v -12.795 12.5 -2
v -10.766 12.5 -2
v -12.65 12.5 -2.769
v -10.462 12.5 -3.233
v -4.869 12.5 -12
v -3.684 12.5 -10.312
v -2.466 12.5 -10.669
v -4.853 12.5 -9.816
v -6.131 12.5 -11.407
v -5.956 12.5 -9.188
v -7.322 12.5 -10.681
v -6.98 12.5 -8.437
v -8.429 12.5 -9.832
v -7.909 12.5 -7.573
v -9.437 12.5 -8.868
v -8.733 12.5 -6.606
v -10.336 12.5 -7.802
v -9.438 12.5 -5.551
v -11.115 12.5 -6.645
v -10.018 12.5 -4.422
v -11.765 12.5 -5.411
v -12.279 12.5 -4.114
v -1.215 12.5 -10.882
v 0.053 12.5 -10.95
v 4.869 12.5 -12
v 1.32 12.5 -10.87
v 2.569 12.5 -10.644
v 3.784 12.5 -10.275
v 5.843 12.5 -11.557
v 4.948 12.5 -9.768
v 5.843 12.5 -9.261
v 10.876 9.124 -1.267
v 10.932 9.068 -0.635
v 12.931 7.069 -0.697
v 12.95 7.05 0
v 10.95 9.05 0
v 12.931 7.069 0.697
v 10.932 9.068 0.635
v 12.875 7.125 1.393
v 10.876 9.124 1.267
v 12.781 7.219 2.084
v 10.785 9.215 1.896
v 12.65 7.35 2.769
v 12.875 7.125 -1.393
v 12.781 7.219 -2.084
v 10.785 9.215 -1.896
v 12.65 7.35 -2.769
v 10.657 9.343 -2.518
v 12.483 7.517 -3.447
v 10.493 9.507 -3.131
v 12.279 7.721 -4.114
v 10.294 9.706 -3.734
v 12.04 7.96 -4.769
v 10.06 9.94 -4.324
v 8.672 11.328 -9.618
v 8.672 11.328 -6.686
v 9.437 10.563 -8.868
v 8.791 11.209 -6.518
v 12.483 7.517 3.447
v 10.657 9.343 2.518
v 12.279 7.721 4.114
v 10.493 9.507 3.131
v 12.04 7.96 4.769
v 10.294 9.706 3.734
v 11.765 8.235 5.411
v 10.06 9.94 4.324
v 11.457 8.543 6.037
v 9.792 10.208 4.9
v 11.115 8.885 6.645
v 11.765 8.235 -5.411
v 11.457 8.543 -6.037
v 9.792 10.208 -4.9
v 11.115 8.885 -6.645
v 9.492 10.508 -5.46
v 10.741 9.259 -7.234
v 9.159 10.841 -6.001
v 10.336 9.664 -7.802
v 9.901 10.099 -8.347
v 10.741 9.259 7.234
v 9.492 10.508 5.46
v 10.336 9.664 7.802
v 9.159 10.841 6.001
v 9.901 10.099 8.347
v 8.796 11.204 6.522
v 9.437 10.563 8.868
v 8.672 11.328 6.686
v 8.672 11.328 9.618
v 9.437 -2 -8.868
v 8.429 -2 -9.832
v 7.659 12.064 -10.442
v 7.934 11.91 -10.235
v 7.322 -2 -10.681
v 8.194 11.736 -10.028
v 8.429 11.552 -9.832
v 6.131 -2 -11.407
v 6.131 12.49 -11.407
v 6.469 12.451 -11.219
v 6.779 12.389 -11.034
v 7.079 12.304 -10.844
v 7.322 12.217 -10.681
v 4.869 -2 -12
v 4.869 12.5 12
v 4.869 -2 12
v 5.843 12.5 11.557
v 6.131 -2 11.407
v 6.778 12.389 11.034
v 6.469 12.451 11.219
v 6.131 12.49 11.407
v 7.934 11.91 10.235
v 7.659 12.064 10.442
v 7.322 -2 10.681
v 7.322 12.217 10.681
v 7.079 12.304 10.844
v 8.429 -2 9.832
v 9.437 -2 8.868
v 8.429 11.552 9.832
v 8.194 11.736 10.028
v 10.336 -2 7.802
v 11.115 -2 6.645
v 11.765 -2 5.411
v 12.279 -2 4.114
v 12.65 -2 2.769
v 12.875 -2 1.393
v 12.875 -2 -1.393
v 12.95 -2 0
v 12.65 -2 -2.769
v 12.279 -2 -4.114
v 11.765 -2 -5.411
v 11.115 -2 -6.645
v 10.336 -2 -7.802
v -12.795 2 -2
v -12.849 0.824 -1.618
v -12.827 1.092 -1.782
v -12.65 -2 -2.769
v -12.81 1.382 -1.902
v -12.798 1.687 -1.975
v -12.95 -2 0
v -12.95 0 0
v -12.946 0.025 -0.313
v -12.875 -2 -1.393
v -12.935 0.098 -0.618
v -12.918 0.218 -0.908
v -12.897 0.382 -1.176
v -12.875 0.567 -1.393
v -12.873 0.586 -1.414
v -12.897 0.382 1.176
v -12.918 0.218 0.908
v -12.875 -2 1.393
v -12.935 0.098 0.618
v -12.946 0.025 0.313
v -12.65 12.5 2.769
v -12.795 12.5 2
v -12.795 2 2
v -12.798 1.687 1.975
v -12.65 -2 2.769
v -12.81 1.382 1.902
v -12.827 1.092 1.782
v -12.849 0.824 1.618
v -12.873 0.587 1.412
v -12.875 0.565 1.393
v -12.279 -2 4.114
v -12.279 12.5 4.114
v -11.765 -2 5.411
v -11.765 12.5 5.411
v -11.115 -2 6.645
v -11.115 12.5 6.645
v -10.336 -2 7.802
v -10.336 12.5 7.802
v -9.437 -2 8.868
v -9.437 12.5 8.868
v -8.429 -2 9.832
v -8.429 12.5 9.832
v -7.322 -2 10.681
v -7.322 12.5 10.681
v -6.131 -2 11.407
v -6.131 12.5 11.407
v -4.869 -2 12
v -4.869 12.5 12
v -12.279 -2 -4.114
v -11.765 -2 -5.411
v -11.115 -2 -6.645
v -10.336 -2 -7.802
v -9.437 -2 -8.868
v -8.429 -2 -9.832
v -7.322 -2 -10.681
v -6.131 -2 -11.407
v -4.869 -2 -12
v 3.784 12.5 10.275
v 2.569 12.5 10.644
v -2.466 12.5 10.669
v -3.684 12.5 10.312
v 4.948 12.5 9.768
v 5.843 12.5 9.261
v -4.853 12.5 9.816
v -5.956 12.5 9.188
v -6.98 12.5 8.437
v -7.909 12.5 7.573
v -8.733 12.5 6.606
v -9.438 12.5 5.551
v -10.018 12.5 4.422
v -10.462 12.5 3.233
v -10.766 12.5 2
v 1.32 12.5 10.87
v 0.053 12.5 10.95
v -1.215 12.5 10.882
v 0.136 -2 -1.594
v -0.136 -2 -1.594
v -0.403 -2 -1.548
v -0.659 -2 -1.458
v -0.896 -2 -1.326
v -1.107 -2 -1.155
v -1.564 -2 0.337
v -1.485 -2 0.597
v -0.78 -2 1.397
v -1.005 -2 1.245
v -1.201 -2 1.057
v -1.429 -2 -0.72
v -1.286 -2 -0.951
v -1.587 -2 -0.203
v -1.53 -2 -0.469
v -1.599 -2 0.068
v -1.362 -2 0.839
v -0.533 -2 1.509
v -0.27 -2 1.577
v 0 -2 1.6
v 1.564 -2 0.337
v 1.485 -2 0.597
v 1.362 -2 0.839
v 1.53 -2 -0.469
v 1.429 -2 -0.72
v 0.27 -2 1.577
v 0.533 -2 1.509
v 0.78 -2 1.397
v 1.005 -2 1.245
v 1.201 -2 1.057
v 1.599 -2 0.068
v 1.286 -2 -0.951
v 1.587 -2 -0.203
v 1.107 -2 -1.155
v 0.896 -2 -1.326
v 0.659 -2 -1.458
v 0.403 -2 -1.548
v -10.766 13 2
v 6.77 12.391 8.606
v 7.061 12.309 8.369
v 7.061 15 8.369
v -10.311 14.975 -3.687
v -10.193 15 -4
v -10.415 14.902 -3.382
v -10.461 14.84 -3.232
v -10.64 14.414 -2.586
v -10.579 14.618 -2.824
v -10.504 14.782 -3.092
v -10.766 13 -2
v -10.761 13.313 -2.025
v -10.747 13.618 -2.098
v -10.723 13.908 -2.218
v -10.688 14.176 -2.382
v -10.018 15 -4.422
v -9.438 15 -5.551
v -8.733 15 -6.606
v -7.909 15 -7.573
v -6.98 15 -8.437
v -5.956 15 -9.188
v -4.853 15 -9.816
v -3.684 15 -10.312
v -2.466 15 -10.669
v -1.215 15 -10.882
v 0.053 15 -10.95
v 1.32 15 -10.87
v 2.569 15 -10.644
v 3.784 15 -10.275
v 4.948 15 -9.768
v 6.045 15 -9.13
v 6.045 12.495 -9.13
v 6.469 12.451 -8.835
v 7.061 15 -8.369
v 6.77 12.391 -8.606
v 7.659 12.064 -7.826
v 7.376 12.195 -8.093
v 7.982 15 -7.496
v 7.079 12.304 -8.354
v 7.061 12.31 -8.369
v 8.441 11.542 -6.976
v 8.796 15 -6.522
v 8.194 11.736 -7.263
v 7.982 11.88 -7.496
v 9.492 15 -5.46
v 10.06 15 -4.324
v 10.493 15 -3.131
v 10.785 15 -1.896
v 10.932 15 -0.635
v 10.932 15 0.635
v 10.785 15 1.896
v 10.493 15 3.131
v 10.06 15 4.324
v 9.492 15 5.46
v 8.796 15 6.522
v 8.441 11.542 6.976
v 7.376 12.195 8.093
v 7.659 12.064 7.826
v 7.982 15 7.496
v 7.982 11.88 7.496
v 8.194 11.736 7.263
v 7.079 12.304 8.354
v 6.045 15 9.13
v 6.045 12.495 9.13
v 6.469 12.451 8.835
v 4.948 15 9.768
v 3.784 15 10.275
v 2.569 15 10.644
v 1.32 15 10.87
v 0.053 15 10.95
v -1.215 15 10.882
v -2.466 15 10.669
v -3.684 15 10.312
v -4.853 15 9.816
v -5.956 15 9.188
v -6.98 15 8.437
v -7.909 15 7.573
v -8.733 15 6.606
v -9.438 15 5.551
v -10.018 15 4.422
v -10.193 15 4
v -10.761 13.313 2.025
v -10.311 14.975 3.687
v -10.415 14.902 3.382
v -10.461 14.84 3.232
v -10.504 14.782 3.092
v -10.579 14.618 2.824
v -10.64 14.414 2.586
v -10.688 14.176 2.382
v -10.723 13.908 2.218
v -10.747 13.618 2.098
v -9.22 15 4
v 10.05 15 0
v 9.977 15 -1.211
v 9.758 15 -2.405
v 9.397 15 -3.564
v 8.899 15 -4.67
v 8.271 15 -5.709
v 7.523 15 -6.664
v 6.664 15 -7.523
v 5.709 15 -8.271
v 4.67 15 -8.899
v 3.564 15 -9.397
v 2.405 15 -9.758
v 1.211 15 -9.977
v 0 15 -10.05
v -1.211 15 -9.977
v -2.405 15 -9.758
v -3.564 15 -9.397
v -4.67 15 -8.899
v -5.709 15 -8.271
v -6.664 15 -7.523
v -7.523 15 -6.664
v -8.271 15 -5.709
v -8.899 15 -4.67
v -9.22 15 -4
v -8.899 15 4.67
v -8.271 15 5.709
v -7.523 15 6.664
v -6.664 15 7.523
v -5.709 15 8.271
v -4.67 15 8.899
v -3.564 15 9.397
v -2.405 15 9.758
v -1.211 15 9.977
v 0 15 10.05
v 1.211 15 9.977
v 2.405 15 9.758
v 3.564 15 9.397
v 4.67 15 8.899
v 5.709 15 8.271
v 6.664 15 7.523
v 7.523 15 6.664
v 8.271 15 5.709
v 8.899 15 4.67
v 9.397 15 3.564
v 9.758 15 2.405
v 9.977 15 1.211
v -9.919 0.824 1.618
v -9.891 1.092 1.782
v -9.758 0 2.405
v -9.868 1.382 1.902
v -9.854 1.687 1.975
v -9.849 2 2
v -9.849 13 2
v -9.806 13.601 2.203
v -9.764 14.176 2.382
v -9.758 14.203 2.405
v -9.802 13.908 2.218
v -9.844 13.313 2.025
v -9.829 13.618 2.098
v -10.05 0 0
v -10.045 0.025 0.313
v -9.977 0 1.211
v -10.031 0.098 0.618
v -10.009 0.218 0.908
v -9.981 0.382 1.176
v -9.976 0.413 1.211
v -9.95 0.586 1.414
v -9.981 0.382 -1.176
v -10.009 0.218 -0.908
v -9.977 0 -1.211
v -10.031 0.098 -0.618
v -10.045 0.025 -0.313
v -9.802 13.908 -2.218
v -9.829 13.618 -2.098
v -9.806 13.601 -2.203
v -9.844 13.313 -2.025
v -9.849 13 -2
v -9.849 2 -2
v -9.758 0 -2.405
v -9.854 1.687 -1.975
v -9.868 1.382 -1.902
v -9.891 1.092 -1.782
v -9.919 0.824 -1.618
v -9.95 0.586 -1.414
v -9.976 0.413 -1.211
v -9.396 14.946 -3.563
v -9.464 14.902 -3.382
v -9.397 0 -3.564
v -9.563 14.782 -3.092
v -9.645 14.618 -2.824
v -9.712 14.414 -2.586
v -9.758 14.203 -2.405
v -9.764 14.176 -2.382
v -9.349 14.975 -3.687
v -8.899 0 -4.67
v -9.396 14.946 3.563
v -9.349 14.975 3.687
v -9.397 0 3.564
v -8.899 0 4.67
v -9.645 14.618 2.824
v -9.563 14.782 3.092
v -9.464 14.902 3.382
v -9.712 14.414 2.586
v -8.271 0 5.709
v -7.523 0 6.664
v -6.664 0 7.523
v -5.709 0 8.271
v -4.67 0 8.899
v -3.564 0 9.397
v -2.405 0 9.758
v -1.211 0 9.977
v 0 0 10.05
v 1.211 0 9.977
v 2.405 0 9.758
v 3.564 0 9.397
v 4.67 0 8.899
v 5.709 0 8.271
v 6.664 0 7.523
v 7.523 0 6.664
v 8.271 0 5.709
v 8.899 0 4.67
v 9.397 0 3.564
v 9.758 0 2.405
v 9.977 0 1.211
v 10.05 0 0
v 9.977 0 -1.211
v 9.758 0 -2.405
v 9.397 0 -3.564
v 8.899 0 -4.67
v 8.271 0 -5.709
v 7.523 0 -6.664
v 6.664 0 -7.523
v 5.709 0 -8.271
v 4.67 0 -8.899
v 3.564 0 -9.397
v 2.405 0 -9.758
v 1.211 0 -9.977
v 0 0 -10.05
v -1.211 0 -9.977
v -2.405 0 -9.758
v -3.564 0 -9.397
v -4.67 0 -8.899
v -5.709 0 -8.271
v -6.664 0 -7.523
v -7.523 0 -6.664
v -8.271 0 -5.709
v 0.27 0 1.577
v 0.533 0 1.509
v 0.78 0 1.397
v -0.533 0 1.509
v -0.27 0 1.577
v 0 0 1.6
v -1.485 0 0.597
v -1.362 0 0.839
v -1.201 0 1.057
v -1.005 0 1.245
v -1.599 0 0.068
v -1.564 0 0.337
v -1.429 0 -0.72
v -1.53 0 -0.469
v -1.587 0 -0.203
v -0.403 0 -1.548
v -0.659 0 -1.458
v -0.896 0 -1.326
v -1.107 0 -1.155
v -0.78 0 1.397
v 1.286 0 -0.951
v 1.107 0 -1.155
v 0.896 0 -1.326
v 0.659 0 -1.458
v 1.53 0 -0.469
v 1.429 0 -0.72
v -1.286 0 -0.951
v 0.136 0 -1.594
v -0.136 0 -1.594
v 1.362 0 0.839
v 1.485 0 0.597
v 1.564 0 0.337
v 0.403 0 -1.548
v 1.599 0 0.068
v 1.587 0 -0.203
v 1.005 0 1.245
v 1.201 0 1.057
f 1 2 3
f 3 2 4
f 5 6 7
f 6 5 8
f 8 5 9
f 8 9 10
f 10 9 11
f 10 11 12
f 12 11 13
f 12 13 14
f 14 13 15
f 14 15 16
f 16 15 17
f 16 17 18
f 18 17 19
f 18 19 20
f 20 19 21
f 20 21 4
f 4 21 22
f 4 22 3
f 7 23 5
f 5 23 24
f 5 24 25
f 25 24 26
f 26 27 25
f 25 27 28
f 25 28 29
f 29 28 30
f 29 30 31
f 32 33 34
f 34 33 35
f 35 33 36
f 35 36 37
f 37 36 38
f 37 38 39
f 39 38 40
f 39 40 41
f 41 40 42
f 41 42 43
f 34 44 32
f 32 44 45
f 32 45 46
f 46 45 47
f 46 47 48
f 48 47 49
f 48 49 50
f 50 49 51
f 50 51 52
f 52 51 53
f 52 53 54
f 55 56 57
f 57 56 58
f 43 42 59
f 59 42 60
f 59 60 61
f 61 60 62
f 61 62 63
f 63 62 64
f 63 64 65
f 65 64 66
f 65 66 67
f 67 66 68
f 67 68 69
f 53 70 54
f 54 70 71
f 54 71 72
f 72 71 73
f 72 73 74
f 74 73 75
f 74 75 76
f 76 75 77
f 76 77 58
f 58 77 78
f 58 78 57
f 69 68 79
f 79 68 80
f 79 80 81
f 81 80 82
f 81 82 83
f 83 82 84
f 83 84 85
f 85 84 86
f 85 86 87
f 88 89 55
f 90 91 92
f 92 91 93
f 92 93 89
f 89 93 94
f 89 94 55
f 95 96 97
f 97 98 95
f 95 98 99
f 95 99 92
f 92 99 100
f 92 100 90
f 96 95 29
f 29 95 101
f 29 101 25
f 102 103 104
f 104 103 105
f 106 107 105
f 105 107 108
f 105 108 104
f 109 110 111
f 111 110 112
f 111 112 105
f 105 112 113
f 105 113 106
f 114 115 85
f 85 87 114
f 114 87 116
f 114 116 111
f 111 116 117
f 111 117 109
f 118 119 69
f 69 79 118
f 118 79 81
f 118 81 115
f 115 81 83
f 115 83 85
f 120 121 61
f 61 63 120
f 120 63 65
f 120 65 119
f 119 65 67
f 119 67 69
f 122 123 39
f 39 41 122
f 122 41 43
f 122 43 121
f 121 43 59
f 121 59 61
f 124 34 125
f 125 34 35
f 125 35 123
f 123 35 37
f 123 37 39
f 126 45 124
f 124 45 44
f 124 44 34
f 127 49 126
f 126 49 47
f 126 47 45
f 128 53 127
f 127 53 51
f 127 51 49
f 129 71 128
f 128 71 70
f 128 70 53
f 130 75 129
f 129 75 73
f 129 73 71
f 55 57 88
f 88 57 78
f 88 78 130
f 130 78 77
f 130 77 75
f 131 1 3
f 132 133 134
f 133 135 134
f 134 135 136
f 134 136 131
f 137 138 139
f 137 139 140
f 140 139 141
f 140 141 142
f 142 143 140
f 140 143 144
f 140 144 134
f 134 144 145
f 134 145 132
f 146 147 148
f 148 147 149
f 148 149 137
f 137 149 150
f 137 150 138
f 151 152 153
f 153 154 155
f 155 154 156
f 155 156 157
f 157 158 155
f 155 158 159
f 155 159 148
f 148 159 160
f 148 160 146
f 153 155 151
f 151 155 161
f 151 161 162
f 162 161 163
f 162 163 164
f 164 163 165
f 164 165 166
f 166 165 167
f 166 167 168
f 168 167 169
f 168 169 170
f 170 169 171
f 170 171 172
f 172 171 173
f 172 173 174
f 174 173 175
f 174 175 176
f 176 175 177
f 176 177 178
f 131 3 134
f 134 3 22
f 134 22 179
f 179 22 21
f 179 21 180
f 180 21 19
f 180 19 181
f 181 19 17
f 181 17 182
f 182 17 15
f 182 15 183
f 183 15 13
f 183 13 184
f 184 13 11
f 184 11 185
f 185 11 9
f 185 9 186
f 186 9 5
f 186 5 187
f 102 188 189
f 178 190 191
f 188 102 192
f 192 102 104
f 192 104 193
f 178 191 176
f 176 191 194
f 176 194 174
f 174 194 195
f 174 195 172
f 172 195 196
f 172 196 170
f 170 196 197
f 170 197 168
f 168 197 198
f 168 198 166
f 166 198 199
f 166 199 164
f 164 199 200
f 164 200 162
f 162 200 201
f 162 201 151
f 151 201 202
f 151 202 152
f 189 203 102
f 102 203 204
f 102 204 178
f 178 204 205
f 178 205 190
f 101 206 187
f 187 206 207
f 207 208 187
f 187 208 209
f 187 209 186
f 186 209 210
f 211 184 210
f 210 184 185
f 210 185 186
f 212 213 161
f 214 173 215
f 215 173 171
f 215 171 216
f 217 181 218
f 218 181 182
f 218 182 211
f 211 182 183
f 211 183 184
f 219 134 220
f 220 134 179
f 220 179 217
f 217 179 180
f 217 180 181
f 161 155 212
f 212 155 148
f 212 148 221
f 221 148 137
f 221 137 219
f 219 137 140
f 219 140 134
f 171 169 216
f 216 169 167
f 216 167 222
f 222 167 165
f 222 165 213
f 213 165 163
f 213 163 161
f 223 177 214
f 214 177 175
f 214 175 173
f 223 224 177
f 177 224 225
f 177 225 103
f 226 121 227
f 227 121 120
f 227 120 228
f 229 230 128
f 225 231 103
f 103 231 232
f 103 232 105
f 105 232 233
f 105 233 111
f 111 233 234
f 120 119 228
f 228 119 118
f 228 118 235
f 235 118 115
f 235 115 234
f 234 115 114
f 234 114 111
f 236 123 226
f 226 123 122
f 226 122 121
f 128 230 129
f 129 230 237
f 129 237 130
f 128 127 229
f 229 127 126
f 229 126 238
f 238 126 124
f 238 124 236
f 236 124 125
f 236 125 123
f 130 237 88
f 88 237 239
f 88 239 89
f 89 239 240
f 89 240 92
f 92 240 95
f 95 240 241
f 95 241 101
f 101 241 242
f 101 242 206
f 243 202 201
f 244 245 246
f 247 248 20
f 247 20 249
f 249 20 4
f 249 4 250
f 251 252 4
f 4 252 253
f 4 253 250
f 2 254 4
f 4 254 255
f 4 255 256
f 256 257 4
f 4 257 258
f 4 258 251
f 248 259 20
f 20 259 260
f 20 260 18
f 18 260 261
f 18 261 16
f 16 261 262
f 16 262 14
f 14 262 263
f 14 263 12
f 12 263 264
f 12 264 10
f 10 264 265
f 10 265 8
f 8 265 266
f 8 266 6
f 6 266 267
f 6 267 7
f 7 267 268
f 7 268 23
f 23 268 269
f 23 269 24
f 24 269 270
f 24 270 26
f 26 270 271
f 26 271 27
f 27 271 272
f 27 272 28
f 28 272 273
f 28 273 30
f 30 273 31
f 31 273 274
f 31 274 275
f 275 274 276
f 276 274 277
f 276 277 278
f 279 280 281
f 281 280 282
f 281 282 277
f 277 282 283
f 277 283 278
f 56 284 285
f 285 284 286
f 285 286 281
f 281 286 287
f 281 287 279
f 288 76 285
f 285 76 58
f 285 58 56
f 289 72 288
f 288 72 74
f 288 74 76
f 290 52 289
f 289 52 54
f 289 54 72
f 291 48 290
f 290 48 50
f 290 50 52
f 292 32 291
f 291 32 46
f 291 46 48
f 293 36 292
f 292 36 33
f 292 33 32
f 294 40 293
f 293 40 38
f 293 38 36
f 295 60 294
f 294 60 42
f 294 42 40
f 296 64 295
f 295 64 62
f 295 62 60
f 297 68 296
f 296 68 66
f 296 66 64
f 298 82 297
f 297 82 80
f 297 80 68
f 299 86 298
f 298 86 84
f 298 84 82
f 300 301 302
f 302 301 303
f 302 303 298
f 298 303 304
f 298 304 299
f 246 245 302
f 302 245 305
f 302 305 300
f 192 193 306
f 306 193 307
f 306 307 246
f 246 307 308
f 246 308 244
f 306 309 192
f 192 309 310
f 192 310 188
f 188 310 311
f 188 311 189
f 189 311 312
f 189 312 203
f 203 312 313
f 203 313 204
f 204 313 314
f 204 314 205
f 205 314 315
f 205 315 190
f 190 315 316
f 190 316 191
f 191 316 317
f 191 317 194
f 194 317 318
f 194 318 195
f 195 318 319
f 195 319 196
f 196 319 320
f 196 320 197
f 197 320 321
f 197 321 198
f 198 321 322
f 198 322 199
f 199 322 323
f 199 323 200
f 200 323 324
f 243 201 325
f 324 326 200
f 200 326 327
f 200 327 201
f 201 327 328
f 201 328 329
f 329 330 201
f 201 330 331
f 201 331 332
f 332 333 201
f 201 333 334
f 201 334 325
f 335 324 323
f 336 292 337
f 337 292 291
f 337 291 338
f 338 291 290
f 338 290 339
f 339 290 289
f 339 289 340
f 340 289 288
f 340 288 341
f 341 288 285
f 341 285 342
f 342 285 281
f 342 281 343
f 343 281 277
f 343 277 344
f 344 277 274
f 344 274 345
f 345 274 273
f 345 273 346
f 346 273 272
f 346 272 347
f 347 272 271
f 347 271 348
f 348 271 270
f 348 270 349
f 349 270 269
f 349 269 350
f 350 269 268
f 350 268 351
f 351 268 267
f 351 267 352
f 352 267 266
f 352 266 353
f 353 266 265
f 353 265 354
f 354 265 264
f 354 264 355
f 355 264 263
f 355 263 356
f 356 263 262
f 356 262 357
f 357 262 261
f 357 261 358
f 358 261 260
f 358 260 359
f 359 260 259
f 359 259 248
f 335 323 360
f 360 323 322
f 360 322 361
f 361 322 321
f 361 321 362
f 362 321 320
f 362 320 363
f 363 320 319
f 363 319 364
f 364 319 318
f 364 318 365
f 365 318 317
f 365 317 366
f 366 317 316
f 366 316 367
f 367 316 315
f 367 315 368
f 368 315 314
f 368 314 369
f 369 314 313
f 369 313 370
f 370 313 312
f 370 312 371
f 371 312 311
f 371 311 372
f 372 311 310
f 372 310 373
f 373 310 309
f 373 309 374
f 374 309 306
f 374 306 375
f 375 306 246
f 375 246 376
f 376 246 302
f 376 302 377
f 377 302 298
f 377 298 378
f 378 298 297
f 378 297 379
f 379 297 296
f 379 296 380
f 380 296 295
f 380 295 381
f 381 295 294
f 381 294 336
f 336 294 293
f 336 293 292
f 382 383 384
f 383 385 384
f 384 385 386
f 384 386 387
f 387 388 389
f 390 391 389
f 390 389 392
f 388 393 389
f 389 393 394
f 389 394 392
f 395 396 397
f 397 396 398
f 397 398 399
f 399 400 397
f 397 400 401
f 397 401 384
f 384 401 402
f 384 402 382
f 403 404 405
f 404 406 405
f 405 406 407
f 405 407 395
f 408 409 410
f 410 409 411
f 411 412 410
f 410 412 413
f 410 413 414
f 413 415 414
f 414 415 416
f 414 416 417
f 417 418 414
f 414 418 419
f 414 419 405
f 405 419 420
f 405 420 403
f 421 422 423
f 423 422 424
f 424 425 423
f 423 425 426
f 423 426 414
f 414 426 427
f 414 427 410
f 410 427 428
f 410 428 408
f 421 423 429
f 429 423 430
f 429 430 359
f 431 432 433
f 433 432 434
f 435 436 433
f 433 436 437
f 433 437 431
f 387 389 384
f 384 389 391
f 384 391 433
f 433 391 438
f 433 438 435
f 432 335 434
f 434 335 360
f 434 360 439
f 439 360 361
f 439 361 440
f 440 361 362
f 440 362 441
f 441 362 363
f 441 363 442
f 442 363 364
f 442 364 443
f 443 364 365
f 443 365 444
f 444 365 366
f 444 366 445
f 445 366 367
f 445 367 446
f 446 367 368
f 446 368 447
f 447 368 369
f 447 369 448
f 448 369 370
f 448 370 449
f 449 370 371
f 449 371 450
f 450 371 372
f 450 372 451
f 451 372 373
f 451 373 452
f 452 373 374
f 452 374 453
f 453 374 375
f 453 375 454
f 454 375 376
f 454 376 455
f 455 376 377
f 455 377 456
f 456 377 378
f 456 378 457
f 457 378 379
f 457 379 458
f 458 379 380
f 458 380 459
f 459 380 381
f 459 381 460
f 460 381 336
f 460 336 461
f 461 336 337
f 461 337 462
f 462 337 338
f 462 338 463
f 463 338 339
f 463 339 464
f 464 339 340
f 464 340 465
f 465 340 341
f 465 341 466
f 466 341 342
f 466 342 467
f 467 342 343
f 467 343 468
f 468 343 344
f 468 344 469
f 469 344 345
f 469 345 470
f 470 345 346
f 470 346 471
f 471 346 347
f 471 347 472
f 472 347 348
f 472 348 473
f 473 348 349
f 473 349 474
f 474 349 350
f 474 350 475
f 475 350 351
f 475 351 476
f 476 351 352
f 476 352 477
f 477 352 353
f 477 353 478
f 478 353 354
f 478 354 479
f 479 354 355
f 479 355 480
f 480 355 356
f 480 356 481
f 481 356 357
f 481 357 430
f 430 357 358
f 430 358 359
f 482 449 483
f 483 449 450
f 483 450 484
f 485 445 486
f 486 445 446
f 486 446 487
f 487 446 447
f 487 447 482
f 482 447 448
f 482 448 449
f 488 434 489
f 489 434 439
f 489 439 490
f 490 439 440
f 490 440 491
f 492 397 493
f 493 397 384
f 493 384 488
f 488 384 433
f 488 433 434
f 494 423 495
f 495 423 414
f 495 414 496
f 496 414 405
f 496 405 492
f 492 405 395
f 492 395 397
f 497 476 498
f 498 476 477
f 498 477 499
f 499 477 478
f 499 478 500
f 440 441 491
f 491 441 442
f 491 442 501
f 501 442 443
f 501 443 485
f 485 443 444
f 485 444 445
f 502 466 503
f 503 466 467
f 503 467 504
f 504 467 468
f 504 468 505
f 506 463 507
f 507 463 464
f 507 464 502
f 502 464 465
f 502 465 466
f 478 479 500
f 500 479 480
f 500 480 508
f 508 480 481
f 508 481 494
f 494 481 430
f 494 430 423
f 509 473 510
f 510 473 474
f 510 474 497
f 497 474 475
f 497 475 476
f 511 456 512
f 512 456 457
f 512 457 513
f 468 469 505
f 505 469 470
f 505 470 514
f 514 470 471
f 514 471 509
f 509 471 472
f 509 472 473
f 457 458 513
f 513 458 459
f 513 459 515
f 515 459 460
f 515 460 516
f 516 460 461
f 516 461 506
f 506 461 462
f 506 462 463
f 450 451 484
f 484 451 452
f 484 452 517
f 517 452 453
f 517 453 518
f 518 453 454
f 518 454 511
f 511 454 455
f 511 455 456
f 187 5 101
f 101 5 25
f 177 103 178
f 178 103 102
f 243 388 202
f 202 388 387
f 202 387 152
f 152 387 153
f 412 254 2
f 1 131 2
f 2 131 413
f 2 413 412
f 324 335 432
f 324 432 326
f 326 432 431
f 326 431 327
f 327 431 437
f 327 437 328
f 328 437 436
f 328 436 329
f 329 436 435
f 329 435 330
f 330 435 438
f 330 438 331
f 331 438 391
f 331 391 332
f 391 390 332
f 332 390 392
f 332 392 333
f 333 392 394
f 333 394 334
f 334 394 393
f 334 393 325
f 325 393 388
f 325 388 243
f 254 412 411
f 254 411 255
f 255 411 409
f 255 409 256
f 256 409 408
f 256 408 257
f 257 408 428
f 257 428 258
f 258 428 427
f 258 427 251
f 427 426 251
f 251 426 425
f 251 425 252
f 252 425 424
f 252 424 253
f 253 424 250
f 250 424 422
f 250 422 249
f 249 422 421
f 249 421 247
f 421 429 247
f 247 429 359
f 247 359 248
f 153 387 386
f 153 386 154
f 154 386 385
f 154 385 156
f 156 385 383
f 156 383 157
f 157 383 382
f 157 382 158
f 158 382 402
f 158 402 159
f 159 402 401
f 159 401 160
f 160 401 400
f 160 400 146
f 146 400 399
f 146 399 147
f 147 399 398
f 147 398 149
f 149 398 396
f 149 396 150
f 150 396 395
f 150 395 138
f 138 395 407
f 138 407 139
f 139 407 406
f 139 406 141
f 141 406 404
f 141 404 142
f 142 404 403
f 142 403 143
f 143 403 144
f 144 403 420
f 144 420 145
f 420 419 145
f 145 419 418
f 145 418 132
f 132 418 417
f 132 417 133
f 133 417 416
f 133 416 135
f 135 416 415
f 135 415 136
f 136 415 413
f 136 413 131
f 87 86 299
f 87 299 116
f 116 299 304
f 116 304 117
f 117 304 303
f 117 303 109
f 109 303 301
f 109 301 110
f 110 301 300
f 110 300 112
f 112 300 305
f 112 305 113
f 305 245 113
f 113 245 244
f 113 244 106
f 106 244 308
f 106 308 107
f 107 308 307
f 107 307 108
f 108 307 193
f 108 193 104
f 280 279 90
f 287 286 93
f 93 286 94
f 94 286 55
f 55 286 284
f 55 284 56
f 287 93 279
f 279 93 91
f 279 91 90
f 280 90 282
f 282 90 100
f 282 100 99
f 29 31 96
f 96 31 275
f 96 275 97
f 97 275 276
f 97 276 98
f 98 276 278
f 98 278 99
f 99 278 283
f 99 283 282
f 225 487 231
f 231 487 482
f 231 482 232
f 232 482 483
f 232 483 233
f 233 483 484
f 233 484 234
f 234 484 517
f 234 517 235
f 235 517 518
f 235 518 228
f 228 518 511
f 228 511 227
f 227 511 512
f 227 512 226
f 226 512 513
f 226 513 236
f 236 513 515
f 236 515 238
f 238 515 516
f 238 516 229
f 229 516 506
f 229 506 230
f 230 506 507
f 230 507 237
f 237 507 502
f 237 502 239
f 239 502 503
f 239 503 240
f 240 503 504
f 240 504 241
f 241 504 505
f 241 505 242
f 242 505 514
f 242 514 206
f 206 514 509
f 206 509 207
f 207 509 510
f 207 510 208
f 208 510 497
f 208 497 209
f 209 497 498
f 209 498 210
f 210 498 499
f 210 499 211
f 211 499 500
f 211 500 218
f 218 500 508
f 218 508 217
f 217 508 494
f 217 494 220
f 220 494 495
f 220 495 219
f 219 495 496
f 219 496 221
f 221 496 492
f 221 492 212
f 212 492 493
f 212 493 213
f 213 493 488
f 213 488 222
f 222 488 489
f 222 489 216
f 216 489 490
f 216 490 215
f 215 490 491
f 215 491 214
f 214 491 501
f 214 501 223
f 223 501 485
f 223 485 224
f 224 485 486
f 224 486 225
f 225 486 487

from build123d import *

# Parameters (mm, degrees)
SKETCH1_R               = 10.95
SKETCH1_R_2             = 10.05
BOSS_EXTRUDE1_DEPTH     = 2
BOSS_EXTRUDE2_START     = 15
SKETCH1_3_R             = 10.95
SKETCH1_3_R_2           = 10.05
BOSS_EXTRUDE2_DEPTH     = 15
BOSS_EXTRUDE3_START     = -2.5
SKETCH2_R               = 12.95
SKETCH2_R_2             = 10.95
BOSS_EXTRUDE3_DEPTH     = 14.5
CUT_EXTRUDE1_DEPTH      = 24.672874773
CUT_EXTRUDE1_DEPTH_BACK = 24.672874773
SKETCH3_W               = 100
SKETCH3_H               = 24
CUT_EXTRUDE3_DEPTH      = 24.166840527
CUT_EXTRUDE3_DEPTH_BACK = 24.166840527
BOSS_EXTRUDE4_START     = 15
SKETCH1_4_R             = 10.95
SKETCH1_4_R_2           = 10.05
BOSS_EXTRUDE4_DEPTH     = 15
SKETCH5_W               = 18
SKETCH5_H               = 4
CUT_EXTRUDE4_DEPTH      = 24.166840527
FILLET1_R               = 2
FILLET2_R               = 4
CUT_EXTRUDE5_DEPTH      = 24.166840699
CUT_EXTRUDE5_DEPTH_BACK = 24.166840699
SKETCH6_R               = 1.6


with BuildPart() as part:
    # Sketch1 → Boss-Extrude1 (new body)
    # profile 1 of 2: a face of its own
    with BuildSketch(Plane(origin=(0, 0, 0), x_dir=(1, 0, 0), z_dir=(0, 1, 0))):
        with Locations(Location((0, 0, 0), (0, 0, 270))):
            Circle(SKETCH1_R)
        Circle(SKETCH1_R_2, mode=Mode.SUBTRACT)
    # profile 2 of 2: a face of its own
    with BuildSketch(Plane(origin=(0, 0, 0), x_dir=(1, 0, 0), z_dir=(0, 1, 0))):
        Circle(SKETCH1_R_2)
    extrude(amount=-BOSS_EXTRUDE1_DEPTH)

    # Sketch1<3> → Boss-Extrude2 (add)
    with BuildSketch(Plane(origin=(0, 0, 0), x_dir=(1, 0, 0), z_dir=(0, 1, 0)).offset(BOSS_EXTRUDE2_START)):
        with Locations(Location((0, 0, 0), (0, 0, 270))):
            Circle(SKETCH1_3_R)
        with Locations(Location((0, 0, 0), (0, 0, 270))):
            Circle(SKETCH1_3_R_2, mode=Mode.SUBTRACT)
    extrude(amount=-BOSS_EXTRUDE2_DEPTH)

    # Sketch2 → Boss-Extrude3 (add)
    with BuildSketch(Plane(origin=(0, 15, 0), x_dir=(1, 0, 0), z_dir=(0, 1, 0)).offset(BOSS_EXTRUDE3_START)):
        with Locations(Location((0, 0, 0), (0, 0, 270))):
            Circle(SKETCH2_R)
        with Locations(Location((0, 0, 0), (0, 0, 270))):
            Circle(SKETCH2_R_2, mode=Mode.SUBTRACT)
    extrude(amount=-BOSS_EXTRUDE3_DEPTH)

    # Sketch3 → Cut-Extrude1 (cut, two sides: drawn at the far end of the back side and taken through both)
    with BuildSketch(Plane(origin=(0, 0, 0), x_dir=(1, 0, 0), z_dir=(0, 1, 0)).offset(-CUT_EXTRUDE1_DEPTH_BACK)):
        with Locations((0, -24)):
            Rectangle(SKETCH3_W, SKETCH3_H)
        with Locations((0, 24)):
            Rectangle(SKETCH3_W, SKETCH3_H)
    extrude(amount=CUT_EXTRUDE1_DEPTH + CUT_EXTRUDE1_DEPTH_BACK, mode=Mode.SUBTRACT)

    # Sketch4 → Cut-Extrude3 (cut, two sides: drawn at the far end of the back side and taken through both)
    with BuildSketch(Plane.XY.offset(-CUT_EXTRUDE3_DEPTH_BACK)):
        Polygon((13, 15), (5, 15), (13, 7), align=None)
    extrude(amount=CUT_EXTRUDE3_DEPTH + CUT_EXTRUDE3_DEPTH_BACK, mode=Mode.SUBTRACT)

    # Sketch1<4> → Boss-Extrude4 (add)
    with BuildSketch(Plane(origin=(0, 0, 0), x_dir=(1, 0, 0), z_dir=(0, 1, 0)).offset(BOSS_EXTRUDE4_START)):
        with Locations(Location((0, 0, 0), (0, 0, 270))):
            Circle(SKETCH1_4_R)
        with Locations(Location((0, 0, 0), (0, 0, 270))):
            Circle(SKETCH1_4_R_2, mode=Mode.SUBTRACT)
    extrude(amount=-BOSS_EXTRUDE4_DEPTH)

    # Sketch5 → Cut-Extrude4 (cut, through all)
    with BuildSketch(Plane(origin=(0, 0, 0), x_dir=(1, 0, 0), z_dir=(0, 1, 0))):
        with Locations((-11, 0)):
            Rectangle(SKETCH5_W, SKETCH5_H)
    extrude(amount=CUT_EXTRUDE4_DEPTH, mode=Mode.SUBTRACT)

    # Fillet1
    fillet1_edges = [part.edges().sort_by_distance(p)[0] for p in [
        (-10.307393529, 15, 2),
        (-10.307393529, 15, -2),
        (-11.321806249, 0, -2),
        (-11.321806249, 0, 2),
    ]]
    fillet(fillet1_edges, radius=FILLET1_R - 0.0001)  # a hair under: the kernel refuses the full size

    # Fillet2
    fillet2_edges = [part.edges().sort_by_distance(p)[0] for p in [
        (7.5, 12.5, 9.26767915),
        (7.5, 12.5, -9.26767915),
    ]]
    fillet(fillet2_edges, radius=FILLET2_R)

    # Sketch6 → Cut-Extrude5 (cut, two sides: drawn at the far end of the back side and taken through both)
    with BuildSketch(Plane(origin=(0, 0, 0), x_dir=(1, 0, 0), z_dir=(0, 1, 0)).offset(-CUT_EXTRUDE5_DEPTH_BACK)):
        with Locations(Location((0, 0, 0), (0, 0, 270))):
            Circle(SKETCH6_R)
    extrude(amount=CUT_EXTRUDE5_DEPTH + CUT_EXTRUDE5_DEPTH_BACK, mode=Mode.SUBTRACT)


solid = part.part
